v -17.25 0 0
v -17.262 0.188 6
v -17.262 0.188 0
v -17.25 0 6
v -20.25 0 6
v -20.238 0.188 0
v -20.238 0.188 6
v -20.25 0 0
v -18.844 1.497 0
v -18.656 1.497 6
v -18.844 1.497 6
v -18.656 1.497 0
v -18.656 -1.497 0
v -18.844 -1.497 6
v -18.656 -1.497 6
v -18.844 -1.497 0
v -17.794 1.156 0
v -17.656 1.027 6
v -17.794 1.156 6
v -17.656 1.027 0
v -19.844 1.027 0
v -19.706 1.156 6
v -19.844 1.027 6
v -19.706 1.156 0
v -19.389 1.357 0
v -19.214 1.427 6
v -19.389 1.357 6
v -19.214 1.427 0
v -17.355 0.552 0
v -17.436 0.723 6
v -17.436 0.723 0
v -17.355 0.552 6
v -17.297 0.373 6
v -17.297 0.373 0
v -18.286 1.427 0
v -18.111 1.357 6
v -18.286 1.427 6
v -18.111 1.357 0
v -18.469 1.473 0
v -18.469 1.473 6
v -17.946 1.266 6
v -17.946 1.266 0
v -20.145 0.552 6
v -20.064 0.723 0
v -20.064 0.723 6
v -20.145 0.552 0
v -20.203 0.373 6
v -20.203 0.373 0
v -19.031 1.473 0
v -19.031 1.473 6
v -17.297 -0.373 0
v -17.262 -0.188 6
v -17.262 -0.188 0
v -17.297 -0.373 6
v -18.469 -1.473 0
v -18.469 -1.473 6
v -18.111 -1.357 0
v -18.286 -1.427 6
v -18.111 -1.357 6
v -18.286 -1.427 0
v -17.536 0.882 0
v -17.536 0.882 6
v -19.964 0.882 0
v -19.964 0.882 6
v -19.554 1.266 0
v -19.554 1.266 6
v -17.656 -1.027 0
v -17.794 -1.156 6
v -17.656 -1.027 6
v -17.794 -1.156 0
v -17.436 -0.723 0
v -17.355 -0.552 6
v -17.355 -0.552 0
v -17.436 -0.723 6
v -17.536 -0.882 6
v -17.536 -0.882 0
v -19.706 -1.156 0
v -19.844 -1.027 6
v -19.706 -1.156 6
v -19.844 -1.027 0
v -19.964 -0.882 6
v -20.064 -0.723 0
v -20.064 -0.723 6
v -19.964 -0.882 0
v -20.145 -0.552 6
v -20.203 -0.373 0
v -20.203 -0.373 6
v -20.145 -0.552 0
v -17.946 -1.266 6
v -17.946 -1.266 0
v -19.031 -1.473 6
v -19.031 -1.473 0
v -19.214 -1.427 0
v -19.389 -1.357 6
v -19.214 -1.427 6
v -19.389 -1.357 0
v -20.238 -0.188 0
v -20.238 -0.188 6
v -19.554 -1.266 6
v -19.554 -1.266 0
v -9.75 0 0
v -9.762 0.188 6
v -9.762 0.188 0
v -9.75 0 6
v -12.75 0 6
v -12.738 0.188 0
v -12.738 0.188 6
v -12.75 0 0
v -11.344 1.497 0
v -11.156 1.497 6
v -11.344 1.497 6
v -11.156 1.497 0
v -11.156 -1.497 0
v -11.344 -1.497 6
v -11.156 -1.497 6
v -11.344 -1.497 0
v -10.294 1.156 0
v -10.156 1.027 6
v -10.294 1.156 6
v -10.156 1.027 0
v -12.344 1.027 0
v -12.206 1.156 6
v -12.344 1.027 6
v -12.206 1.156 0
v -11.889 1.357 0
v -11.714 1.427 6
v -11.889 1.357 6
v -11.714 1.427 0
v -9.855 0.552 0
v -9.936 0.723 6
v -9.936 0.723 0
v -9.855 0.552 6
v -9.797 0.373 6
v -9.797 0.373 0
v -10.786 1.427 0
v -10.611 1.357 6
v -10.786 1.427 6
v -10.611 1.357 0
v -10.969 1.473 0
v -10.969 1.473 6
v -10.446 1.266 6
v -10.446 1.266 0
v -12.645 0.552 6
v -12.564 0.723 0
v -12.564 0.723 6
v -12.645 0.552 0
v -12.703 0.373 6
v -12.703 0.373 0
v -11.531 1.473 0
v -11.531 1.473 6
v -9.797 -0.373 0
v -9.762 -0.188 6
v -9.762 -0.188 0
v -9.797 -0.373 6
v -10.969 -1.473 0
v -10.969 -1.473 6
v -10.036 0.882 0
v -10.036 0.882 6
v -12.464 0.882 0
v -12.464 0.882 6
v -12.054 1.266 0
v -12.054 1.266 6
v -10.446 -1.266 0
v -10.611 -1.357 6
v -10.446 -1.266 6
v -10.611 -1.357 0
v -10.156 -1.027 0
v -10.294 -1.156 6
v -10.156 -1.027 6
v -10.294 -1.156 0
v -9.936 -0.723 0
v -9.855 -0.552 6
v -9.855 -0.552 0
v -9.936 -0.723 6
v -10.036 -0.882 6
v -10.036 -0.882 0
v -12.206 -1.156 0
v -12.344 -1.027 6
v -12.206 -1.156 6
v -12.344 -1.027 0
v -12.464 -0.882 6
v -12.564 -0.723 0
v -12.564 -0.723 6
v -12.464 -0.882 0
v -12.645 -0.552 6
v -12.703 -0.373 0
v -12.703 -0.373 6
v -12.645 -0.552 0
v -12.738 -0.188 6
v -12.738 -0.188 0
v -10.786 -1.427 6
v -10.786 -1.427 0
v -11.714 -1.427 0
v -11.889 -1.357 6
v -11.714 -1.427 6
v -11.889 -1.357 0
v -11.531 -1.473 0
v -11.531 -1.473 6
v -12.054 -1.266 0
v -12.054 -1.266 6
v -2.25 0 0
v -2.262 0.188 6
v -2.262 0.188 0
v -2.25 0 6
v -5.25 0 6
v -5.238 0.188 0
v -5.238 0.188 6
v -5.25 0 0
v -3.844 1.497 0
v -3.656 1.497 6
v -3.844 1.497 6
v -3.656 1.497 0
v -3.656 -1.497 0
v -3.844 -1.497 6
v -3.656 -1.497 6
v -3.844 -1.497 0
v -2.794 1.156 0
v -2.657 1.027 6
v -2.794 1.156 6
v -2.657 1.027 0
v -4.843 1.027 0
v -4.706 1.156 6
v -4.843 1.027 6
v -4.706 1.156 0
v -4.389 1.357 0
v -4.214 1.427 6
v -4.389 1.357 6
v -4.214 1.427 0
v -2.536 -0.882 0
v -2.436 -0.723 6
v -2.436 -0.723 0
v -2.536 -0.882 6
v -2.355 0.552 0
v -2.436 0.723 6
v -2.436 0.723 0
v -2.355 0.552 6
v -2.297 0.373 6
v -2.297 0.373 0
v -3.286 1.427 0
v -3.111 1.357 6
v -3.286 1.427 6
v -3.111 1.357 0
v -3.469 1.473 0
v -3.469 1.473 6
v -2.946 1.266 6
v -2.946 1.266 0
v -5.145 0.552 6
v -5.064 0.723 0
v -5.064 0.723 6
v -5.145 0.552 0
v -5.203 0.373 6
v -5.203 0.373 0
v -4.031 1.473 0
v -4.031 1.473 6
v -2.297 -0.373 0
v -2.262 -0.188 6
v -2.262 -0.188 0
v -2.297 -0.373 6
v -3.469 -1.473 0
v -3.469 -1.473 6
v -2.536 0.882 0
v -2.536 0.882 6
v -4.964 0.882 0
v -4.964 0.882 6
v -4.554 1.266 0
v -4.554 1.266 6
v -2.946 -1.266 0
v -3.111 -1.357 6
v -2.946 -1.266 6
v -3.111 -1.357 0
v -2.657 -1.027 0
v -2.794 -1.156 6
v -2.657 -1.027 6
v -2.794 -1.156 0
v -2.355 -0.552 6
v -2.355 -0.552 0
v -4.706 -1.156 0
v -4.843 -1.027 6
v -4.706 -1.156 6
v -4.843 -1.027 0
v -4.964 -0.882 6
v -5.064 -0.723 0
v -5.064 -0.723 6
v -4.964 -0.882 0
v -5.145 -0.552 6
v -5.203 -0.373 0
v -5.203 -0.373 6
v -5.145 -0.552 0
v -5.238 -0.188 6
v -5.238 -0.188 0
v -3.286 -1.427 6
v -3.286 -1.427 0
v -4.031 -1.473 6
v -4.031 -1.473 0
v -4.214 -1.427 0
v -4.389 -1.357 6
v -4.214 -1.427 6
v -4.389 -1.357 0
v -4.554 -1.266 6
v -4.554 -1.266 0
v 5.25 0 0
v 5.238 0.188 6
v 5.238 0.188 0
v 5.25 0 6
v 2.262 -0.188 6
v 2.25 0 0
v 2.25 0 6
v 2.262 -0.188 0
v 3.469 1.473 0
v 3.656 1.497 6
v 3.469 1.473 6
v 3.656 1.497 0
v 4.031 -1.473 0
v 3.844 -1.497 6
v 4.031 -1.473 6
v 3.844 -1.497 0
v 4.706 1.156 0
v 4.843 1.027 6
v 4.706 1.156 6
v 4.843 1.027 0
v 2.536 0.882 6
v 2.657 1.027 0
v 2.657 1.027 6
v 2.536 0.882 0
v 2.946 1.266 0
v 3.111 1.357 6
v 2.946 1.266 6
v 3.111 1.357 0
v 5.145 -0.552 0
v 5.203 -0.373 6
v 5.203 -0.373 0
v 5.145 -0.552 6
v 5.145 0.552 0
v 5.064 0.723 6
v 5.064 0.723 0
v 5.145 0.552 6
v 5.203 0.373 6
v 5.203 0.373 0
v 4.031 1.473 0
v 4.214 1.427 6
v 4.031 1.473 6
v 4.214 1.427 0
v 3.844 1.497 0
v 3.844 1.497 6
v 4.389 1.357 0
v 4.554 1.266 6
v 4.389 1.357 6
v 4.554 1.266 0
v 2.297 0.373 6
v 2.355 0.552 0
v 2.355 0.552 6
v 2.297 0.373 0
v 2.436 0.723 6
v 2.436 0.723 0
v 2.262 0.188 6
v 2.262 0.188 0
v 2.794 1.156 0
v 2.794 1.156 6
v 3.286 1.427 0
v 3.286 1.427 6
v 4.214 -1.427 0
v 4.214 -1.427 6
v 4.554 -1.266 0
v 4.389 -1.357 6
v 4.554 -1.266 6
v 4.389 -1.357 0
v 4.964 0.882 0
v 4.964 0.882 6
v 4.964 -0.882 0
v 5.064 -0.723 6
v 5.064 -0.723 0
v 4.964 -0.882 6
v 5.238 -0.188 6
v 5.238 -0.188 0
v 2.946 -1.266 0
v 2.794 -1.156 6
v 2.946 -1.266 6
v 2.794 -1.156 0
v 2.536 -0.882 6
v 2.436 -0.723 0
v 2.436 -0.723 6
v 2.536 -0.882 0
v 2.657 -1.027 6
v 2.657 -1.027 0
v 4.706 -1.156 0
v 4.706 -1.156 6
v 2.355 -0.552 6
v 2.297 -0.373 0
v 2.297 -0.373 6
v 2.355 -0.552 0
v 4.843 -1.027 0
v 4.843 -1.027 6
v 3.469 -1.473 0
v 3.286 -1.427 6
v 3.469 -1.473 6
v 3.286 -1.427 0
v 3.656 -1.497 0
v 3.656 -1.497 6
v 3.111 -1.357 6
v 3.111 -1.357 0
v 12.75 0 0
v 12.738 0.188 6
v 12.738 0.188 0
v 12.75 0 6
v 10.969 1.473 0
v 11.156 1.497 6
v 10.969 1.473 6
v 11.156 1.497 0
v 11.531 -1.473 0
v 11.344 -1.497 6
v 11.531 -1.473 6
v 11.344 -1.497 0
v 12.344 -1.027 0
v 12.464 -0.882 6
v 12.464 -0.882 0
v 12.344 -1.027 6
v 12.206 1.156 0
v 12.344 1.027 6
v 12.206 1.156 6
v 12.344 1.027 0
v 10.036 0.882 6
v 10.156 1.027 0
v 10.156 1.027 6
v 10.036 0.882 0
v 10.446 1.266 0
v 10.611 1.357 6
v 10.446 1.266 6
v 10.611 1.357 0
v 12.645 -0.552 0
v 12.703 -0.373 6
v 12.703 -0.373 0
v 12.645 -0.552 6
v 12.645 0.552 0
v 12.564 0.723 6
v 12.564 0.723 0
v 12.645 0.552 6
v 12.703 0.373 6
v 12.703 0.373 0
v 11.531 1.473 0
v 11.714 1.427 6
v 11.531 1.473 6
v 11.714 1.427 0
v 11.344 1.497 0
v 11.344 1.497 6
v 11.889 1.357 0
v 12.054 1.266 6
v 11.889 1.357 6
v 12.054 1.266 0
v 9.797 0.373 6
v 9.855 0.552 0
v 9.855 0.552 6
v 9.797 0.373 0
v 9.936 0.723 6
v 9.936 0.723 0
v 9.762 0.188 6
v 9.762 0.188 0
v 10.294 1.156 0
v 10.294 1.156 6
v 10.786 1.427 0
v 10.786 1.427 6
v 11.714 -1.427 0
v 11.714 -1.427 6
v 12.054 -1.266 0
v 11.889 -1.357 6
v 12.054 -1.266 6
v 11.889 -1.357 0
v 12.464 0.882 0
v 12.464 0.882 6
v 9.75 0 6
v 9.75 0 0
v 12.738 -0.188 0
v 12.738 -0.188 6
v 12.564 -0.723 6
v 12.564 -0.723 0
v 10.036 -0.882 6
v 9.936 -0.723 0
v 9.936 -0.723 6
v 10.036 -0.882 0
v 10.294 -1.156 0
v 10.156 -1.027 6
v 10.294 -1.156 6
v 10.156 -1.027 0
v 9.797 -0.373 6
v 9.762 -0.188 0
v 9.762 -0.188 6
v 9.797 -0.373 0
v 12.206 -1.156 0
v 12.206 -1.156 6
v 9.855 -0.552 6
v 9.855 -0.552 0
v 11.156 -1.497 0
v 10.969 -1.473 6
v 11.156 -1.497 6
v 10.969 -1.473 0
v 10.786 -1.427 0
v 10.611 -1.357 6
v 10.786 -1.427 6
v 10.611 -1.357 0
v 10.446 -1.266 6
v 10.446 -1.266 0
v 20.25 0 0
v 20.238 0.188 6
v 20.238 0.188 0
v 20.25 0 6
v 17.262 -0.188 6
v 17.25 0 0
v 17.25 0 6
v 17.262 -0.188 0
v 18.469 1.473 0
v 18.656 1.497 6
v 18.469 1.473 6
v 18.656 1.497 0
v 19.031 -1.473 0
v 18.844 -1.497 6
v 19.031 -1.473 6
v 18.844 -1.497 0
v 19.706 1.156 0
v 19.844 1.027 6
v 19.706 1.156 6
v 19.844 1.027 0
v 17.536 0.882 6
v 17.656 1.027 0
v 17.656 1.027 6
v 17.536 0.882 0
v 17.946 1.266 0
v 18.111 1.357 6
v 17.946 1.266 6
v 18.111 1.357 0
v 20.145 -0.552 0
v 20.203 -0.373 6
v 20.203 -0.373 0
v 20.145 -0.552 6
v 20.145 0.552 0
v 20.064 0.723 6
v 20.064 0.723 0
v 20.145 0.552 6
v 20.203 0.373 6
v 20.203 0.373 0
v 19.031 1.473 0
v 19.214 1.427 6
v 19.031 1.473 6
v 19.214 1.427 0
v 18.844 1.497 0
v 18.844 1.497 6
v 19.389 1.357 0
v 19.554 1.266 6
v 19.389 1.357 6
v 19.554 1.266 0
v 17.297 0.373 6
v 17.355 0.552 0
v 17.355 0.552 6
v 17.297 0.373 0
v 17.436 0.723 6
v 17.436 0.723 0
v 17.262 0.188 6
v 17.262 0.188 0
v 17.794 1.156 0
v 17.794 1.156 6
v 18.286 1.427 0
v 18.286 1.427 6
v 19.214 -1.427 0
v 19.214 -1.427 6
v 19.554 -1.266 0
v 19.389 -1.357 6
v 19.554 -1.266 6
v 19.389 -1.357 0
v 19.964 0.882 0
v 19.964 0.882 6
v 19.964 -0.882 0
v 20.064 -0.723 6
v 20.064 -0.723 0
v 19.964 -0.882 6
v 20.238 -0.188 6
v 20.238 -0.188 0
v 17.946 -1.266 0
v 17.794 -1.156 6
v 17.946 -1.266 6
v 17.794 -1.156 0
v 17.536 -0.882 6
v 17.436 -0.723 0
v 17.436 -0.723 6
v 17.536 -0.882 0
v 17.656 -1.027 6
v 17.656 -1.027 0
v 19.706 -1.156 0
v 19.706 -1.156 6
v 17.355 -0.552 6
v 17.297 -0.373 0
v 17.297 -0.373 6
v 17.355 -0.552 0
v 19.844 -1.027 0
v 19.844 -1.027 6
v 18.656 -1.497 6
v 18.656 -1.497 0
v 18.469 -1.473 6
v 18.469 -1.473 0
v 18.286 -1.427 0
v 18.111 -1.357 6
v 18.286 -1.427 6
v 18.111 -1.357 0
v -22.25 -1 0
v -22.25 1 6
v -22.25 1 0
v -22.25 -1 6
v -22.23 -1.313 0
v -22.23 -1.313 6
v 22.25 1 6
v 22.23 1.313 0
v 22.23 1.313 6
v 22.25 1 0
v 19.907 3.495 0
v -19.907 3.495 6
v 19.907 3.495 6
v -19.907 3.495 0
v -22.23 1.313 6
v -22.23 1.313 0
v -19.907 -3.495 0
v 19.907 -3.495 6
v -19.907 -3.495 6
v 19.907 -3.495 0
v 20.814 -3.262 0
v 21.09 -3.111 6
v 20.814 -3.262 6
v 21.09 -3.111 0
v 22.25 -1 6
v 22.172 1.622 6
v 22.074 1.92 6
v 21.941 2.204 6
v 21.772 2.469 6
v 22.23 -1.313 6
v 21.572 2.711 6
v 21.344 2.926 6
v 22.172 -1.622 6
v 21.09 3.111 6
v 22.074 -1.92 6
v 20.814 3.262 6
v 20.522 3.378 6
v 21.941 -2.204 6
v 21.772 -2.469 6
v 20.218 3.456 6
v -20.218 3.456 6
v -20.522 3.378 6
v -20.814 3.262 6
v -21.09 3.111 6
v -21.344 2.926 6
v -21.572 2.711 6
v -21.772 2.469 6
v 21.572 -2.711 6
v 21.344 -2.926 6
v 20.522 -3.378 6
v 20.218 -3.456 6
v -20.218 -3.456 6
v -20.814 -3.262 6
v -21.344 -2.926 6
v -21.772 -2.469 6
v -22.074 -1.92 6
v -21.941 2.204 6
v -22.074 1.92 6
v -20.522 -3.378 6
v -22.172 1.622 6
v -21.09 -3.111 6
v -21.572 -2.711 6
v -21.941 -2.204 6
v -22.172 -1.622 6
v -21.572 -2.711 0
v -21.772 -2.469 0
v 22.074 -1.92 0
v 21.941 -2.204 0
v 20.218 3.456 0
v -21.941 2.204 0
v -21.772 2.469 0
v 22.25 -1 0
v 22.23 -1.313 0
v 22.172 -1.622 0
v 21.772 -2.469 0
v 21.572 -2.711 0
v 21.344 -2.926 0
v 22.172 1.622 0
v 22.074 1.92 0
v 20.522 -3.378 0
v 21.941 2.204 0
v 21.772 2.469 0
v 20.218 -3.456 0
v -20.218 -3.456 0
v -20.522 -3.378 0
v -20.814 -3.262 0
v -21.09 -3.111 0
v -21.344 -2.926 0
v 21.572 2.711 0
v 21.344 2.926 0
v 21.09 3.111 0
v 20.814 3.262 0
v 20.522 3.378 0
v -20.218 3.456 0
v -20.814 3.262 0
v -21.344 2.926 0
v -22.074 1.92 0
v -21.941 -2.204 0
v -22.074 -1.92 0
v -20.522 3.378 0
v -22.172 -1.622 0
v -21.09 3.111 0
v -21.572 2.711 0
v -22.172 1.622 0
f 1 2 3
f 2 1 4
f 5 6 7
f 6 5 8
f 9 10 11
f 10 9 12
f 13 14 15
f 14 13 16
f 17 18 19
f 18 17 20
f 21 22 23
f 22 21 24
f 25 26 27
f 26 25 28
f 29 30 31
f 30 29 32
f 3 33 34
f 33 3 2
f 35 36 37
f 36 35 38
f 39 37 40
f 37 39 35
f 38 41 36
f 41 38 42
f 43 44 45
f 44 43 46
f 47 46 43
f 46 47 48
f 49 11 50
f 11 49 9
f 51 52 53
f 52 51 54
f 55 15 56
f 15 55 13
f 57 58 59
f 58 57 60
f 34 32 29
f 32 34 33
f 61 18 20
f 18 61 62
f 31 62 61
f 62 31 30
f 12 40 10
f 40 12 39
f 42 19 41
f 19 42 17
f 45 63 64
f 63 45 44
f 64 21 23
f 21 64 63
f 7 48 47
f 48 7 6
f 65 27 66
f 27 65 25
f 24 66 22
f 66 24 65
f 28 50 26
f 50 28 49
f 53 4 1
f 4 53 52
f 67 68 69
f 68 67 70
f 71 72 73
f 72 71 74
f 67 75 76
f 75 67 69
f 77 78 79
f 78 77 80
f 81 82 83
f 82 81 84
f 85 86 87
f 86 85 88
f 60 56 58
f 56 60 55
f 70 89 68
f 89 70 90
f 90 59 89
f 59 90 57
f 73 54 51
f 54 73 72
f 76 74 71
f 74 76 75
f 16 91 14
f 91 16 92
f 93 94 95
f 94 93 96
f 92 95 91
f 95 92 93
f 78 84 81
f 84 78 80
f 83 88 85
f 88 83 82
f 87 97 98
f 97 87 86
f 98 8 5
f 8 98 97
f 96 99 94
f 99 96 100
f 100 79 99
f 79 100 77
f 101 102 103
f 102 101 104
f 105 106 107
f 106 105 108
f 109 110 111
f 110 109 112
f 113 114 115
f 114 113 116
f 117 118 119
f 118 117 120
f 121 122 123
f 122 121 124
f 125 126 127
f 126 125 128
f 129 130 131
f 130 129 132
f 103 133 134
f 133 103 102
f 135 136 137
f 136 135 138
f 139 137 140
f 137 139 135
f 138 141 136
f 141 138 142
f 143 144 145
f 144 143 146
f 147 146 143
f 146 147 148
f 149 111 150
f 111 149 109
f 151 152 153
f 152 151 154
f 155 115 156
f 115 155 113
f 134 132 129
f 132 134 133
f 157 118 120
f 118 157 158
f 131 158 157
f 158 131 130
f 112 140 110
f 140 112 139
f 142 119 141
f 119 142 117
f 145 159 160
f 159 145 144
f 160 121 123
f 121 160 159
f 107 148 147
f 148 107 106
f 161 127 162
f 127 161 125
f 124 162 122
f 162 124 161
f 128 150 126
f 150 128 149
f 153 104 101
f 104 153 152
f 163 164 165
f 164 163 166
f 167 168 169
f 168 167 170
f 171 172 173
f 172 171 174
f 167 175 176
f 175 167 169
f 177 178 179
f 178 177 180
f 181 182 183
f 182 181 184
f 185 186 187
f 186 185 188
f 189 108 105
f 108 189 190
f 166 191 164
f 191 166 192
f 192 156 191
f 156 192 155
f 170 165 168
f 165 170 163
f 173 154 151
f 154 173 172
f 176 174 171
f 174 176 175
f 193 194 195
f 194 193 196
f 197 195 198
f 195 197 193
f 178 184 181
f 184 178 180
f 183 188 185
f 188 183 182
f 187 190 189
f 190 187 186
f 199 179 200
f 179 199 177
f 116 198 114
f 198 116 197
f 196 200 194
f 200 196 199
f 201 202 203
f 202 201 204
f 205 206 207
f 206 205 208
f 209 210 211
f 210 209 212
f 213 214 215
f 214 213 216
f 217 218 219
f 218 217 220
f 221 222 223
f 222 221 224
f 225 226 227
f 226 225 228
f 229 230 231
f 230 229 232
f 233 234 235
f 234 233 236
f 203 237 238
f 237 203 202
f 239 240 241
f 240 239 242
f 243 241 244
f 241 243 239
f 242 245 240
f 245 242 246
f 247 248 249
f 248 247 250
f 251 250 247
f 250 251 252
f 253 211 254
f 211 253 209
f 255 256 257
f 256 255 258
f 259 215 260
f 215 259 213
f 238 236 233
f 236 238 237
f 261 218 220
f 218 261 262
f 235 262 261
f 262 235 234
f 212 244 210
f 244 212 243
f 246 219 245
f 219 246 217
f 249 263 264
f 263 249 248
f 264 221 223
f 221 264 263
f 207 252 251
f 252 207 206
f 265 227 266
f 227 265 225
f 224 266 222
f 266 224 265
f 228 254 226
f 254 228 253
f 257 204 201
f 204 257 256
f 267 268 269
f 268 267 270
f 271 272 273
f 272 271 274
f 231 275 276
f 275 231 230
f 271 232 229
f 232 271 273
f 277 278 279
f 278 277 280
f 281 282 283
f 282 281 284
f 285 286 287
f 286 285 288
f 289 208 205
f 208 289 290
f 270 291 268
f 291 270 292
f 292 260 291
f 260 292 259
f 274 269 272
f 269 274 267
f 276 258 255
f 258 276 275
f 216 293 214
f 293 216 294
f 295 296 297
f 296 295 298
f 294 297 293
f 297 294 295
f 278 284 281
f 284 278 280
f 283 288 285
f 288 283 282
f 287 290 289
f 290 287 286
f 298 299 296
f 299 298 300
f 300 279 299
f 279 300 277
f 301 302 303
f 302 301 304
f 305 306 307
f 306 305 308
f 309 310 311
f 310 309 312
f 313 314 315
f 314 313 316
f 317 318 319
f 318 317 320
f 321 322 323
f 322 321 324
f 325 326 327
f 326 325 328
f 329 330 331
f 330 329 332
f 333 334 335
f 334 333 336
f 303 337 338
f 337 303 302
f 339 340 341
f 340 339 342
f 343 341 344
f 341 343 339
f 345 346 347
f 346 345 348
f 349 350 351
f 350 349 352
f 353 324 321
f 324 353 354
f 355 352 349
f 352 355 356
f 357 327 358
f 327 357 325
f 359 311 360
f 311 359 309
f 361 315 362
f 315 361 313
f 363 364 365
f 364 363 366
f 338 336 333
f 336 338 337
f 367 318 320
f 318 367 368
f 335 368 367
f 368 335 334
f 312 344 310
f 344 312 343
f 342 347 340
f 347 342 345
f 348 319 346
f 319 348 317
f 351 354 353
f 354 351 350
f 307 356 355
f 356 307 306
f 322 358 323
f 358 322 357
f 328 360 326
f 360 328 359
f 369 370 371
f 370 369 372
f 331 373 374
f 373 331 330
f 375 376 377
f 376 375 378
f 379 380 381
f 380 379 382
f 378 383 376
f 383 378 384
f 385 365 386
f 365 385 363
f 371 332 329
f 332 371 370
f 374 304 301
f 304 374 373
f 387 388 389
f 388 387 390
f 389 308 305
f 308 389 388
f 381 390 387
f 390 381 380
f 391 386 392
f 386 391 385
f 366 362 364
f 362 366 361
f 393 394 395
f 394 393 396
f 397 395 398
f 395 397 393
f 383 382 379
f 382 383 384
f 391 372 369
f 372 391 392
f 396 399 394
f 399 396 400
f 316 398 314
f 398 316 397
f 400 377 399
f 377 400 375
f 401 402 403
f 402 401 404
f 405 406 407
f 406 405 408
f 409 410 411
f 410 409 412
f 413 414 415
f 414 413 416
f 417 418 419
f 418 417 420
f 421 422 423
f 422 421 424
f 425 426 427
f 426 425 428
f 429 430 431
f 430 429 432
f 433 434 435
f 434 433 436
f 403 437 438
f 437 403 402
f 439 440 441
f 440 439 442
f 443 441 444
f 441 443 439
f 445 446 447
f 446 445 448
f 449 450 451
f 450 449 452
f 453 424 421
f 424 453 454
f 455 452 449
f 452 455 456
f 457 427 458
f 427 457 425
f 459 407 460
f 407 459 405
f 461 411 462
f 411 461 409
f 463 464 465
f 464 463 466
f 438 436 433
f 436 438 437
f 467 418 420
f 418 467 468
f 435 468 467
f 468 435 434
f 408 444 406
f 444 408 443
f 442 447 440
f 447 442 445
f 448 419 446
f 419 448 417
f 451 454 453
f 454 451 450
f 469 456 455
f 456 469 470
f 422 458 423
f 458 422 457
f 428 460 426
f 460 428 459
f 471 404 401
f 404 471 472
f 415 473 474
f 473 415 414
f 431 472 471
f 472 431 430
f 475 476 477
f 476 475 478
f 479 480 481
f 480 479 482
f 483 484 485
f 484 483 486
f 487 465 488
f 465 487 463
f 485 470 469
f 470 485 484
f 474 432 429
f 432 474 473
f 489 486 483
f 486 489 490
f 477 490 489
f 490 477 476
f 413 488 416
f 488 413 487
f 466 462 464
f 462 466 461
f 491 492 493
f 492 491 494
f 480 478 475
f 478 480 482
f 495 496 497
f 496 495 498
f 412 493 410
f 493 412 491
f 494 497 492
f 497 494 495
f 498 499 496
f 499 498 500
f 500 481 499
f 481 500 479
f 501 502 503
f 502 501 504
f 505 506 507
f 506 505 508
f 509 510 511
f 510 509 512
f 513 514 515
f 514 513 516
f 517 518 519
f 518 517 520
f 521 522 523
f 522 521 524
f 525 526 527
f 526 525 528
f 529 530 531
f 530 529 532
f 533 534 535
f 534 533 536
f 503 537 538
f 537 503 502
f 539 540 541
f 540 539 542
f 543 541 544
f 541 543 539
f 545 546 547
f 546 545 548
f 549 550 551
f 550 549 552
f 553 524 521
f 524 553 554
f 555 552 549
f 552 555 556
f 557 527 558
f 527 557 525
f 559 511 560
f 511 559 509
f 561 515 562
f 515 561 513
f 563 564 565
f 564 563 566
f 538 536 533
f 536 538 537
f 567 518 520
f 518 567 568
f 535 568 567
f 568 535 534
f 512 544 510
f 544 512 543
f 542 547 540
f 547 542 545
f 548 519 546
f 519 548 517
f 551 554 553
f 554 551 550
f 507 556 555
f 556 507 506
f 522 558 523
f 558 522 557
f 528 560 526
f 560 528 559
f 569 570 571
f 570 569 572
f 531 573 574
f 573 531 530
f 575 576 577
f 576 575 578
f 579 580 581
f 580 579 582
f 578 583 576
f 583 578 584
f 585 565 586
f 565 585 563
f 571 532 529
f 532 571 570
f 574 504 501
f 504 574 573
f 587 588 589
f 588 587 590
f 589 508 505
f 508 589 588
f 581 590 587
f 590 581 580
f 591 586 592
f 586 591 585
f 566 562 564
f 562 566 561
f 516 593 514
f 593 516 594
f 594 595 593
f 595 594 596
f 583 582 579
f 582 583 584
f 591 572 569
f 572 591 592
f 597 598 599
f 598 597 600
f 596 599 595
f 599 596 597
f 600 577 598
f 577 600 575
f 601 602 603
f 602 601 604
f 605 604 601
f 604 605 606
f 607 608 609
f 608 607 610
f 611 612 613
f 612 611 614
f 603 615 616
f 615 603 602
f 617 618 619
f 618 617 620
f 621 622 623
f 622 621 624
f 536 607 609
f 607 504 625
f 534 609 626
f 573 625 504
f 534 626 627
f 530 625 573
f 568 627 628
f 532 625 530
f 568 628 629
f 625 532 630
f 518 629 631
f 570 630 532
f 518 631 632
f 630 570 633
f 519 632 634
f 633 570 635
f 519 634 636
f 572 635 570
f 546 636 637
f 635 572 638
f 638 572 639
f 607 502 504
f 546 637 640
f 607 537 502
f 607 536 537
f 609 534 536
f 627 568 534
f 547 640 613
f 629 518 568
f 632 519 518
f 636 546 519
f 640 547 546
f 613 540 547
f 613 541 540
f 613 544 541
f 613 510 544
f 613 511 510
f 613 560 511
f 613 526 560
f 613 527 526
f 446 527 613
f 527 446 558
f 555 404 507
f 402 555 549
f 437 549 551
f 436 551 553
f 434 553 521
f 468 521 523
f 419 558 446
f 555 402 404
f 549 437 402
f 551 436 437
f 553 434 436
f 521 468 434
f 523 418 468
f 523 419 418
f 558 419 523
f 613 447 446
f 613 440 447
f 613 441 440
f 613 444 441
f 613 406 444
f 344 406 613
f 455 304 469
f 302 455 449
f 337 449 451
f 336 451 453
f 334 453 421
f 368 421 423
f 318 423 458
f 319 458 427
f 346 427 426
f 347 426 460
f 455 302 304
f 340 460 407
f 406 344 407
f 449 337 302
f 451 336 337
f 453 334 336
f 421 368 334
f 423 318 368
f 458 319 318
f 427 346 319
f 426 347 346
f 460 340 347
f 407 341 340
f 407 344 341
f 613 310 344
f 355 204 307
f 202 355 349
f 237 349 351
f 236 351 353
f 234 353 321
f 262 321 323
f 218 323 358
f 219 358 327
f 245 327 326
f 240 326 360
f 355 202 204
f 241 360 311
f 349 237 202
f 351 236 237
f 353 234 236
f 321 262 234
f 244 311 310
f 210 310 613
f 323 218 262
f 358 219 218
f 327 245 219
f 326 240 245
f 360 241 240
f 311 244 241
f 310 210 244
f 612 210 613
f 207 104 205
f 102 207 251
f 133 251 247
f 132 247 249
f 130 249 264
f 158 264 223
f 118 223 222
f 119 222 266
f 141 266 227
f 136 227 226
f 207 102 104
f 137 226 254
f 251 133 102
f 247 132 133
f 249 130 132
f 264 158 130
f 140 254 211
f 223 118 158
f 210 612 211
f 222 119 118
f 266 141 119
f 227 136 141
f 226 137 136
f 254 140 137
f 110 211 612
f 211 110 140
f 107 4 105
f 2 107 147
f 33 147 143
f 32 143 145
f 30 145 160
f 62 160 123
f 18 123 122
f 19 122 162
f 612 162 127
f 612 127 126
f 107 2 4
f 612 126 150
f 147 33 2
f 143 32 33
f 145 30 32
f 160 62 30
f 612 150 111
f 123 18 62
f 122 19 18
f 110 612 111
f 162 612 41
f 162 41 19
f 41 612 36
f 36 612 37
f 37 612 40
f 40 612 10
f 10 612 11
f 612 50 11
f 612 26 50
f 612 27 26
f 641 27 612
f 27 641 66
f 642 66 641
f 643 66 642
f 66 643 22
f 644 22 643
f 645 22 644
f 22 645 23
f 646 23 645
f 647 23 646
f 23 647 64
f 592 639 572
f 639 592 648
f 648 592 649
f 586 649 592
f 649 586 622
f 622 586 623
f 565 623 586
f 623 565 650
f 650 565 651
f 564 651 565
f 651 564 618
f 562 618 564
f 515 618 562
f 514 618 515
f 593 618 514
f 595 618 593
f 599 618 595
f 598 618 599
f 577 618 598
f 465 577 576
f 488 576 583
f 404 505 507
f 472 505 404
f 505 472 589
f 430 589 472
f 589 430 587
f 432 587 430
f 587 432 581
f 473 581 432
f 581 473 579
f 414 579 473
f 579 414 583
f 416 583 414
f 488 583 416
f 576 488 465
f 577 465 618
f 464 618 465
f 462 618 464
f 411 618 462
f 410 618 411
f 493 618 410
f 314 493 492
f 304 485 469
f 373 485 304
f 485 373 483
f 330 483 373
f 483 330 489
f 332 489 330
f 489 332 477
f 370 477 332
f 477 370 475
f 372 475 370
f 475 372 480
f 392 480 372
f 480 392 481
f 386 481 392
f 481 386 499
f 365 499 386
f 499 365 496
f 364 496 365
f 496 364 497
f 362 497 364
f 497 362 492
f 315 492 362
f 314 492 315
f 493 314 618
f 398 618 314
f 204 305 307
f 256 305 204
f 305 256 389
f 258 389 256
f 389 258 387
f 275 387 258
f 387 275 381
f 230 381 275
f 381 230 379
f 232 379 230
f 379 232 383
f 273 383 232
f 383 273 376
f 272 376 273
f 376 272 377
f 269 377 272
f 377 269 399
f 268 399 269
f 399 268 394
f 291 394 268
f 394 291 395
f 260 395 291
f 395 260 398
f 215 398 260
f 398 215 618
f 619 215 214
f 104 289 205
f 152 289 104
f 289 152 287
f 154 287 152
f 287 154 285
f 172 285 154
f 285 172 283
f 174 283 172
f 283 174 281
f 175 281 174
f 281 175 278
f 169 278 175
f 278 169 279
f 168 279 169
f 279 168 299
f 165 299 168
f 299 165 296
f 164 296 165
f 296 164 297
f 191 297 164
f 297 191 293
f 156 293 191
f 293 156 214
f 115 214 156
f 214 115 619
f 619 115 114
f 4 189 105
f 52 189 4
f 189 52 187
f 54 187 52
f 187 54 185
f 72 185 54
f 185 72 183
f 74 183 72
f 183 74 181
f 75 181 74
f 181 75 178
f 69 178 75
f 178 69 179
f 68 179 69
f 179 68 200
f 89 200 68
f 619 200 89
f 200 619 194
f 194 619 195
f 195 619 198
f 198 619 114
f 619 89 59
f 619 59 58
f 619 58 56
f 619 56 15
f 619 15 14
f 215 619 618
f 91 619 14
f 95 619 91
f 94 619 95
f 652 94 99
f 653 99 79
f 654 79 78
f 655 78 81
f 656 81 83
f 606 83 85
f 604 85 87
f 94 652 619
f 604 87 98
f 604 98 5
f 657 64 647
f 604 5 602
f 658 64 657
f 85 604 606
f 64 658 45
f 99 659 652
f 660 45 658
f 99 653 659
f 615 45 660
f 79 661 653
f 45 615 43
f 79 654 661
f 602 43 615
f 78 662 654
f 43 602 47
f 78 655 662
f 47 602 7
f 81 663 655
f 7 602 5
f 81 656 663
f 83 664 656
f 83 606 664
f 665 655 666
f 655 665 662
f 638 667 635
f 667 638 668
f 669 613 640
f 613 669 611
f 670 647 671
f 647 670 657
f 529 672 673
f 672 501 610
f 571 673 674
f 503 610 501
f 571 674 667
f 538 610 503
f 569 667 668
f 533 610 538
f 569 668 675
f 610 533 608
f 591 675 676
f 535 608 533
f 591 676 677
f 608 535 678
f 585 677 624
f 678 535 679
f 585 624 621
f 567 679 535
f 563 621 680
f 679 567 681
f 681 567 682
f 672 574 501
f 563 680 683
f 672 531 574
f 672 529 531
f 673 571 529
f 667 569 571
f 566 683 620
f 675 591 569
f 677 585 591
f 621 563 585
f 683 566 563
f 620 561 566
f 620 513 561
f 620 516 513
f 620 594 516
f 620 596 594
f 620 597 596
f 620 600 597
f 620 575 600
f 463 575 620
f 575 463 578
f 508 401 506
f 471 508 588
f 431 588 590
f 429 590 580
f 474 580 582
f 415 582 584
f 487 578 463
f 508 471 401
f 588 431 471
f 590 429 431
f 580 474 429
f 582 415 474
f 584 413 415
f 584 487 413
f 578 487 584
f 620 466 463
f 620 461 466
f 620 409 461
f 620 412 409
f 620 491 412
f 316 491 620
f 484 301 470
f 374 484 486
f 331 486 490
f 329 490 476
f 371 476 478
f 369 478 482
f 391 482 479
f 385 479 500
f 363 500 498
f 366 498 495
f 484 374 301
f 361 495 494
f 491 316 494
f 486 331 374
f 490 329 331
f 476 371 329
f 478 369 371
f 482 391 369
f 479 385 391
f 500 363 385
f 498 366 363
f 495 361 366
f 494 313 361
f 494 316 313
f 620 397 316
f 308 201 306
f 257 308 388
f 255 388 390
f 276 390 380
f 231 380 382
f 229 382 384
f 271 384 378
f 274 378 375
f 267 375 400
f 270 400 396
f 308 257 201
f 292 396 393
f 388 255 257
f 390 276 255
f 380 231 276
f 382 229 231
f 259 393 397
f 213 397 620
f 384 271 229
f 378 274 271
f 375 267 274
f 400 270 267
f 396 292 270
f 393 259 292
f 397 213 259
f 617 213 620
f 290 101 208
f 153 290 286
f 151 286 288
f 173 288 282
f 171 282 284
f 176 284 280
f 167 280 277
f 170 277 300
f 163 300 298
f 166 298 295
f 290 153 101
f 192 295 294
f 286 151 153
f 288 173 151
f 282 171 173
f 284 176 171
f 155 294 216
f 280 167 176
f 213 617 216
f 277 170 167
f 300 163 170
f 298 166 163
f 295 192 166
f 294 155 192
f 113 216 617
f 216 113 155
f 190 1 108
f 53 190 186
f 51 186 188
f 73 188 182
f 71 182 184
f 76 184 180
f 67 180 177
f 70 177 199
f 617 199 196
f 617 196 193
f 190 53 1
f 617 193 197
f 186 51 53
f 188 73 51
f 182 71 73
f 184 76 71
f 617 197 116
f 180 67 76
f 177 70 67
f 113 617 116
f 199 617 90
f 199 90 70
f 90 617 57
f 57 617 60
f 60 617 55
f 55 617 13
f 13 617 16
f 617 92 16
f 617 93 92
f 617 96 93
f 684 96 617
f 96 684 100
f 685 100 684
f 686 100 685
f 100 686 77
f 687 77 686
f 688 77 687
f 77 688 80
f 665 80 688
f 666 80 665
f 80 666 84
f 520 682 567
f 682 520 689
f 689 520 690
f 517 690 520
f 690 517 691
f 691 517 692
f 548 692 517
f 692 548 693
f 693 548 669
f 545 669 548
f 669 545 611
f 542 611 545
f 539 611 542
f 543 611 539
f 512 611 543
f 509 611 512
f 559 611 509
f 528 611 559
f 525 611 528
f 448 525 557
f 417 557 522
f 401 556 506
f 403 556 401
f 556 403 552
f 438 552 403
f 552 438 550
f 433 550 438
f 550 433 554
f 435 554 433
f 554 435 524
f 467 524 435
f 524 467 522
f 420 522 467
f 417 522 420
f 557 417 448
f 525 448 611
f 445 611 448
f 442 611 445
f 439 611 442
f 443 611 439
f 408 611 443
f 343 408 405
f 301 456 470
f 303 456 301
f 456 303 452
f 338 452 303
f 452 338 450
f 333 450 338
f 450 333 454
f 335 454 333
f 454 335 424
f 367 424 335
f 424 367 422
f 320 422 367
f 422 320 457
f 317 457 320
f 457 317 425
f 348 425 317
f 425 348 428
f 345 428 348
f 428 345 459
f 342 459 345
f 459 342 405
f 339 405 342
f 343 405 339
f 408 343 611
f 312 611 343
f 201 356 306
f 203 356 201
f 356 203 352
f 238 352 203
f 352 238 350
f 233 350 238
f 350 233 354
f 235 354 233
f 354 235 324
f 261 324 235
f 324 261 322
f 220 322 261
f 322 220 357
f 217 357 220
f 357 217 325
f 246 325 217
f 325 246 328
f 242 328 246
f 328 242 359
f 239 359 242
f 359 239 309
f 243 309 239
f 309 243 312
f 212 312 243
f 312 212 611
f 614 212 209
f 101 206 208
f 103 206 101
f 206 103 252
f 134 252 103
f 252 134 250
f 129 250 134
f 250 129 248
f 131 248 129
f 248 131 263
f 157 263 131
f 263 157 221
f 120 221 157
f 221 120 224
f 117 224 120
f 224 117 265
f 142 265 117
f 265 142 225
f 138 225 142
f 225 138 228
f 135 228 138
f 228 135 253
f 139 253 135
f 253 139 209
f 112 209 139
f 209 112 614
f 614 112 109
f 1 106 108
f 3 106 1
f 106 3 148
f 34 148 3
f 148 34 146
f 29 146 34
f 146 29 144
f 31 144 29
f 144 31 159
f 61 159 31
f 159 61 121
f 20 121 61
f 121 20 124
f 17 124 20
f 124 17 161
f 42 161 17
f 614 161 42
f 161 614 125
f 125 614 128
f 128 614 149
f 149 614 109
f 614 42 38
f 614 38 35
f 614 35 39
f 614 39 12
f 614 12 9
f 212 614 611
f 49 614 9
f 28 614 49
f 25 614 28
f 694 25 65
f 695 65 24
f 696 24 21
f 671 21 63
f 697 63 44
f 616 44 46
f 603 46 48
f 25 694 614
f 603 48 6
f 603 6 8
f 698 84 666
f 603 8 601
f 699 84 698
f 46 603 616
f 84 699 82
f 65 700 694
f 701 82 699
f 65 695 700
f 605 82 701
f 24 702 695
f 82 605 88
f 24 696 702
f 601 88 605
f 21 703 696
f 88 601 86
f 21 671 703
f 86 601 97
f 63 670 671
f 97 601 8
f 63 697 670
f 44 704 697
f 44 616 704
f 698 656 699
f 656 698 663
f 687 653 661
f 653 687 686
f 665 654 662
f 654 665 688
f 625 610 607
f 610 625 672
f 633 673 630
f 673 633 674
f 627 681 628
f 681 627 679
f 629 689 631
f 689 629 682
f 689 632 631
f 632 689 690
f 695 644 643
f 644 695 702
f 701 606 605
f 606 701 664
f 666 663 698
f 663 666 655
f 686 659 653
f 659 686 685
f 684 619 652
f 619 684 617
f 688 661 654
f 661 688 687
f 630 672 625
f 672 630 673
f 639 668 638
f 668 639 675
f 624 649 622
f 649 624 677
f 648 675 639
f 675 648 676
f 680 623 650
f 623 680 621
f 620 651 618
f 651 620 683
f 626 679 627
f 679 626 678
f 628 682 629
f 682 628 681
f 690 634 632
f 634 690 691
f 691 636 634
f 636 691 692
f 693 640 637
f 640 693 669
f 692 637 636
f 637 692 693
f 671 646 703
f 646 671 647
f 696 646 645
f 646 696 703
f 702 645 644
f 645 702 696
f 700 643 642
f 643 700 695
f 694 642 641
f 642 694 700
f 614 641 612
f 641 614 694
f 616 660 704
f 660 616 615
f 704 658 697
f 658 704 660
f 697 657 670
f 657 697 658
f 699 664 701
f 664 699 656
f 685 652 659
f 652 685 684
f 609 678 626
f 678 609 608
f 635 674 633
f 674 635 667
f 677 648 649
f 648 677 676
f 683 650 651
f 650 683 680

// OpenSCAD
$fn = 50;


difference() {
	union() {
		translate(v = [0, 0, 0]) {
			rotate(a = [0, 0, 0]) {
				hull() {
					translate(v = [-19.7500000000, 1.0000000000, 0]) {
						rotate(a = [0, 0, 0]) {
							translate(v = [0, 0, 0]) {
								rotate(a = [0, 0, 0]) {
									cylinder(h = 6, r = 2.5000000000);
								}
							}
						}
					}
					translate(v = [19.7500000000, 1.0000000000, 0]) {
						rotate(a = [0, 0, 0]) {
							translate(v = [0, 0, 0]) {
								rotate(a = [0, 0, 0]) {
									cylinder(h = 6, r = 2.5000000000);
								}
							}
						}
					}
					translate(v = [-19.7500000000, -1.0000000000, 0]) {
						rotate(a = [0, 0, 0]) {
							translate(v = [0, 0, 0]) {
								rotate(a = [0, 0, 0]) {
									cylinder(h = 6, r = 2.5000000000);
								}
							}
						}
					}
					translate(v = [19.7500000000, -1.0000000000, 0]) {
						rotate(a = [0, 0, 0]) {
							translate(v = [0, 0, 0]) {
								rotate(a = [0, 0, 0]) {
									cylinder(h = 6, r = 2.5000000000);
								}
							}
						}
					}
				}
			}
		}
	}
	union() {
		translate(v = [-18.7500000000, 0.0000000000, 0]) {
			rotate(a = [0, 0, 0]) {
				translate(v = [0, 0, -50]) {
					rotate(a = [0, 0, 0]) {
						cylinder(h = 100, r = 1.5000000000);
					}
				}
			}
		}
		translate(v = [-11.2500000000, 0.0000000000, 0]) {
			rotate(a = [0, 0, 0]) {
				translate(v = [0, 0, -50]) {
					rotate(a = [0, 0, 0]) {
						cylinder(h = 100, r = 1.5000000000);
					}
				}
			}
		}
		translate(v = [-3.7500000000, 0.0000000000, 0]) {
			rotate(a = [0, 0, 0]) {
				translate(v = [0, 0, -50]) {
					rotate(a = [0, 0, 0]) {
						cylinder(h = 100, r = 1.5000000000);
					}
				}
			}
		}
		translate(v = [3.7500000000, 0.0000000000, 0]) {
			rotate(a = [0, 0, 0]) {
				translate(v = [0, 0, -50]) {
					rotate(a = [0, 0, 0]) {
						cylinder(h = 100, r = 1.5000000000);
					}
				}
			}
		}
		translate(v = [11.2500000000, 0.0000000000, 0]) {
			rotate(a = [0, 0, 0]) {
				translate(v = [0, 0, -50]) {
					rotate(a = [0, 0, 0]) {
						cylinder(h = 100, r = 1.5000000000);
					}
				}
			}
		}
		translate(v = [18.7500000000, 0.0000000000, 0]) {
			rotate(a = [0, 0, 0]) {
				translate(v = [0, 0, -50]) {
					rotate(a = [0, 0, 0]) {
						cylinder(h = 100, r = 1.5000000000);
					}
				}
			}
		}
	}
}
